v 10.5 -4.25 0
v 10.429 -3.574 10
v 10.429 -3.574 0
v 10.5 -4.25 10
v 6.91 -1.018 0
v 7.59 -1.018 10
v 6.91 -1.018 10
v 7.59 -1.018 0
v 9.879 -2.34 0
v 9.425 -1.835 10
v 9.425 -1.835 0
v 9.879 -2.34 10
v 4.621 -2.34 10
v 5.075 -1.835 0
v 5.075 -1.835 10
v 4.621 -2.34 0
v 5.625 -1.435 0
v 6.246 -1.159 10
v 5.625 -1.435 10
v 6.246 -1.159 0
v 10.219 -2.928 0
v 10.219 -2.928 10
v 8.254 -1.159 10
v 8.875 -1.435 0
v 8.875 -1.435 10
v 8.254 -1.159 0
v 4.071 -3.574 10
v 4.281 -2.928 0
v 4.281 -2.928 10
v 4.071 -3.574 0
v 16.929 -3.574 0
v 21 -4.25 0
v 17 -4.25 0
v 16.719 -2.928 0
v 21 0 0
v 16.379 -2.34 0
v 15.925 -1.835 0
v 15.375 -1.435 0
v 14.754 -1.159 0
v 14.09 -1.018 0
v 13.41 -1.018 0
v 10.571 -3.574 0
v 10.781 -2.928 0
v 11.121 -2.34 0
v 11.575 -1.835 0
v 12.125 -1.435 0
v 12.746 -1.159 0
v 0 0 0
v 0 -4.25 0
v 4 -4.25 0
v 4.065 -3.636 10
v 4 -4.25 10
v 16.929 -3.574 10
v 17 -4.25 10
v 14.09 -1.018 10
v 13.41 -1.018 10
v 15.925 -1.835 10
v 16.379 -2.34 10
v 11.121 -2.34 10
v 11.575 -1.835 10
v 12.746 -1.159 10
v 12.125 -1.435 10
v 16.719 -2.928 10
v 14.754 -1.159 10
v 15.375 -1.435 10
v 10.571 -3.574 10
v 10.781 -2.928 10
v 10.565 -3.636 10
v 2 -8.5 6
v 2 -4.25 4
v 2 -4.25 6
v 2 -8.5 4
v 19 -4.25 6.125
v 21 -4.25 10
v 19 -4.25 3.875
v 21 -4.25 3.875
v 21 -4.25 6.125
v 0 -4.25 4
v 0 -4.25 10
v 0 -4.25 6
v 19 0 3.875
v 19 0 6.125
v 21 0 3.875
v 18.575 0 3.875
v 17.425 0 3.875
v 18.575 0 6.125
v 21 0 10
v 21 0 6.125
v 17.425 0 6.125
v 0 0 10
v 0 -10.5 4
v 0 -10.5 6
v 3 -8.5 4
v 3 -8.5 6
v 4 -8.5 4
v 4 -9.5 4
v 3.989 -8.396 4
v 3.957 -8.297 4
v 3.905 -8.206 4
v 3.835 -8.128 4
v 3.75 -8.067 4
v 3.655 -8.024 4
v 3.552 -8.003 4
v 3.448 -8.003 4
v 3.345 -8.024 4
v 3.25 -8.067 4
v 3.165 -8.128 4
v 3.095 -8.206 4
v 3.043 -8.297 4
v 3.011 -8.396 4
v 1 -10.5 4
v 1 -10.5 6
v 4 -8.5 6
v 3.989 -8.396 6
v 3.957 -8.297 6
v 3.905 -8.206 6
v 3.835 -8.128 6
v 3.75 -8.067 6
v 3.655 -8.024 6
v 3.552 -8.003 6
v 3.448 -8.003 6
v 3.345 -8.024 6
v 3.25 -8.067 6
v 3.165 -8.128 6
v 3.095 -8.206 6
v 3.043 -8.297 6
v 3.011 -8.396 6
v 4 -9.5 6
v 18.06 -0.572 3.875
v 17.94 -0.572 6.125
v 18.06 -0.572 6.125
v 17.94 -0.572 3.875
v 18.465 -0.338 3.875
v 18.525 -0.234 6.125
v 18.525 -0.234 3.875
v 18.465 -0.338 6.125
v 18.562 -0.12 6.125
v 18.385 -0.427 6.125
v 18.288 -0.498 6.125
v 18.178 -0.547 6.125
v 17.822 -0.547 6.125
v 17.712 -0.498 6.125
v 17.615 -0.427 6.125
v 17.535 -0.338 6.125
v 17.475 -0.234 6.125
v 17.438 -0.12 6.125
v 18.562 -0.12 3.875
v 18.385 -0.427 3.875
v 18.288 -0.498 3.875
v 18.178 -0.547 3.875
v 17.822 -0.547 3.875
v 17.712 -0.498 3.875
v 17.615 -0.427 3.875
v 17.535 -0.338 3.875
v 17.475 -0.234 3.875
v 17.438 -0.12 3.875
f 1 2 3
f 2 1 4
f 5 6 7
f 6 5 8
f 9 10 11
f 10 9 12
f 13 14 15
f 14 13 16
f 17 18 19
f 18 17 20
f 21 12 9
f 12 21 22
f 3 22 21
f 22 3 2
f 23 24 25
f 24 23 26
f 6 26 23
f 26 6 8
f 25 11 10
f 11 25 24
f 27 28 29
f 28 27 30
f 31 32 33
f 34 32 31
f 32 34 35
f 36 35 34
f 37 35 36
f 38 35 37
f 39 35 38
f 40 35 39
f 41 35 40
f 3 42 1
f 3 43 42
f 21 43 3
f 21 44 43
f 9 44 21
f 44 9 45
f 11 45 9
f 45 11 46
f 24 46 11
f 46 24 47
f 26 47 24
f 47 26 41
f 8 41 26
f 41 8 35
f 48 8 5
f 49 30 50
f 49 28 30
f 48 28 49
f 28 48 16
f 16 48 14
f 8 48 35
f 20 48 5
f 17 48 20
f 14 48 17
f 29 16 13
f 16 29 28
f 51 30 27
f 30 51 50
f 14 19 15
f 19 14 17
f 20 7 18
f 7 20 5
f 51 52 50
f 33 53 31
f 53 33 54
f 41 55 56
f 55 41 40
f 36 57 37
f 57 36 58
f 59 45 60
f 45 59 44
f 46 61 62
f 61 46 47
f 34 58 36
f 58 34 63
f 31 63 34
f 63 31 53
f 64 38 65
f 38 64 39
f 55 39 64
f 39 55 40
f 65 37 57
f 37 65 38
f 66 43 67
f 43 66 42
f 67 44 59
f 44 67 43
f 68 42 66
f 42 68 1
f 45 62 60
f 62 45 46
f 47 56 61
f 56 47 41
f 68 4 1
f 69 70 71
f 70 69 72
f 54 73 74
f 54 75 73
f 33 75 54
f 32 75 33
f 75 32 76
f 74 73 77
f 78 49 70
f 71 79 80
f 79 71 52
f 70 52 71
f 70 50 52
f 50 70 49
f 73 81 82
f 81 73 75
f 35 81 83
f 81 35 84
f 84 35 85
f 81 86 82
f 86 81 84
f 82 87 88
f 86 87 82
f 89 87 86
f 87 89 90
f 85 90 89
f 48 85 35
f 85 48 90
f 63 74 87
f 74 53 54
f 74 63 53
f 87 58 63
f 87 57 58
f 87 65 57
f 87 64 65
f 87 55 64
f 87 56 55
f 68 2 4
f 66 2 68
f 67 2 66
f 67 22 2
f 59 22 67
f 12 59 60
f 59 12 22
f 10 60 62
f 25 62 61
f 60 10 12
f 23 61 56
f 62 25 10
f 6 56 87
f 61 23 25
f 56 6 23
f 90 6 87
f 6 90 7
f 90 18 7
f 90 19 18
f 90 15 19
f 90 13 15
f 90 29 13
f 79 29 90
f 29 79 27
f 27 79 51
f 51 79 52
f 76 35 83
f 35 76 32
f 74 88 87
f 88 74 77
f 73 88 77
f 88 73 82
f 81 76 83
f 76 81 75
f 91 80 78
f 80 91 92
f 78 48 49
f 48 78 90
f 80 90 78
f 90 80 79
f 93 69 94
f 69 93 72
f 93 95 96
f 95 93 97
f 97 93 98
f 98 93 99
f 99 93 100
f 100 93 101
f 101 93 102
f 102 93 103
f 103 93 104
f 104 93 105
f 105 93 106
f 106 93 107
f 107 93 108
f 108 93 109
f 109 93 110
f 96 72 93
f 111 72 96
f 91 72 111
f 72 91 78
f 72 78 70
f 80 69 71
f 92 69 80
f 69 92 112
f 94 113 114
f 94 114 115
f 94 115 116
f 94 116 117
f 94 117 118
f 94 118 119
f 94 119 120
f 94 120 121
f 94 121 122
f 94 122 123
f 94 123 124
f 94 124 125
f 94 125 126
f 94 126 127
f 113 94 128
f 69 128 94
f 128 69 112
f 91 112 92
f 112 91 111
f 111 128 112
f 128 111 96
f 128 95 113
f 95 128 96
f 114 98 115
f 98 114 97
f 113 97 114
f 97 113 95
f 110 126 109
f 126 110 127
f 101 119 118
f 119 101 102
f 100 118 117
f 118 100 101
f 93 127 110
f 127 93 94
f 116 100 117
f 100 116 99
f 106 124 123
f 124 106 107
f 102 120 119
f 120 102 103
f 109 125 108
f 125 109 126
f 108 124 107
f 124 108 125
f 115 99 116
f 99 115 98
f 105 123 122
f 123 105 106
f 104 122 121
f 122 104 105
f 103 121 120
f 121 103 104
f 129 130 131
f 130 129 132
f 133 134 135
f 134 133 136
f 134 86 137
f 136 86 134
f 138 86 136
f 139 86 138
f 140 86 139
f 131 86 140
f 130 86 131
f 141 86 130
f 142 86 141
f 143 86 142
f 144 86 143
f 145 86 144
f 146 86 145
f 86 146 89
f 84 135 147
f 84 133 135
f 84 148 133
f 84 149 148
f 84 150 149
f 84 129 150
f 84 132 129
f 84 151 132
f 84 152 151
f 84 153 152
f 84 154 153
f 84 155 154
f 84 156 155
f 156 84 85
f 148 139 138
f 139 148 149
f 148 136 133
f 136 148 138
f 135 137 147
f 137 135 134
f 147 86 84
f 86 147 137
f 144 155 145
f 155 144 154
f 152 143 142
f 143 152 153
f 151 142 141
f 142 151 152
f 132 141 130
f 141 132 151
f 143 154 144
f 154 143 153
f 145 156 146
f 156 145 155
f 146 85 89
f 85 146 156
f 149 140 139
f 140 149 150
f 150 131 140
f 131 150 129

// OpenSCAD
// Coax coil clip - VE3XEC

// Two of these fit together to form a clip, useful for making a tidy air-core coax coil.
// You'll probably want at least three clips (six of these) per coil, more for larger coils.
// The clip at the start/end of the coil should accommodate an extra pass of coax.

// Configuration
coax_od = 6.5; // Outer diameter of coax.  Leave some wiggle room.
width = 10; // 4 mm is the absolute minimum to prevent lateral movement of clip halves
wall_thickness = 1; // Should be at least 1mm
passes = 2; // How many passes of coax to accommodate
spacing = 0; // passes are separated centre-to-centre by coax_od plus this amount

// Configurable but best left alone
height = (coax_od / 2) + wall_thickness;
$fn = 30;

rotate([90, 0, 0]) { // Rotated so that the fastener doesn't bend away from its base layer. #robust
    difference() {
        union() {
            cube([wall_thickness * 2, width, height]);
            translate([0, (width / 2) - 1, height]) {
                cube([2, 2, height]);
            }
            hull() {
                translate([0, (width / 2) - 1, height * 2]) {
                    cube([1, 2, 2]);
                }
                translate([2, (width / 2) - 1, height * 2]) {
                    cube([2, 2, 1]);
                }
            }
            translate([3.5, (width / 2) + 1, (height * 2)]) {
                rotate([90, 0, 0]) {
                    cylinder(d = 1, h = 2);
                }
            }
            difference() {
                translate([wall_thickness * 2, 0, 0]) {
                    cube([(wall_thickness * 4) + (coax_od * passes) + (spacing * (passes - 1)), width, height]);
                }
                for (n = [0 : 1 : passes - 1]) {
                    translate([(wall_thickness * 4) + (coax_od / 2) + ((coax_od + spacing) * n), 0, wall_thickness + (coax_od / 2)]) {
                        rotate([-90, 0, 0]) {
                            cylinder(d = coax_od, h = width + 1);
                        }
                    }
                }
            }
            difference() {
                translate([(wall_thickness * 4) + ((coax_od + spacing) * passes), 0, 0]) {
                    cube([wall_thickness * 4, width, height]);
                }
                translate([(wall_thickness * 6) + ((coax_od + spacing) * passes), (width / 2) - 1.125, 0]) {
                    cube([wall_thickness * 2, 2.25, height]);
                }
            }
        }
        translate([(wall_thickness * 4) + ((coax_od + spacing) * passes) + 1, (width / 2) - 1.125, 0]) {
            rotate([-90, 0, 0]) {
                cylinder(d = 1.15, h = 2.25);
            }
        }
    }
}
